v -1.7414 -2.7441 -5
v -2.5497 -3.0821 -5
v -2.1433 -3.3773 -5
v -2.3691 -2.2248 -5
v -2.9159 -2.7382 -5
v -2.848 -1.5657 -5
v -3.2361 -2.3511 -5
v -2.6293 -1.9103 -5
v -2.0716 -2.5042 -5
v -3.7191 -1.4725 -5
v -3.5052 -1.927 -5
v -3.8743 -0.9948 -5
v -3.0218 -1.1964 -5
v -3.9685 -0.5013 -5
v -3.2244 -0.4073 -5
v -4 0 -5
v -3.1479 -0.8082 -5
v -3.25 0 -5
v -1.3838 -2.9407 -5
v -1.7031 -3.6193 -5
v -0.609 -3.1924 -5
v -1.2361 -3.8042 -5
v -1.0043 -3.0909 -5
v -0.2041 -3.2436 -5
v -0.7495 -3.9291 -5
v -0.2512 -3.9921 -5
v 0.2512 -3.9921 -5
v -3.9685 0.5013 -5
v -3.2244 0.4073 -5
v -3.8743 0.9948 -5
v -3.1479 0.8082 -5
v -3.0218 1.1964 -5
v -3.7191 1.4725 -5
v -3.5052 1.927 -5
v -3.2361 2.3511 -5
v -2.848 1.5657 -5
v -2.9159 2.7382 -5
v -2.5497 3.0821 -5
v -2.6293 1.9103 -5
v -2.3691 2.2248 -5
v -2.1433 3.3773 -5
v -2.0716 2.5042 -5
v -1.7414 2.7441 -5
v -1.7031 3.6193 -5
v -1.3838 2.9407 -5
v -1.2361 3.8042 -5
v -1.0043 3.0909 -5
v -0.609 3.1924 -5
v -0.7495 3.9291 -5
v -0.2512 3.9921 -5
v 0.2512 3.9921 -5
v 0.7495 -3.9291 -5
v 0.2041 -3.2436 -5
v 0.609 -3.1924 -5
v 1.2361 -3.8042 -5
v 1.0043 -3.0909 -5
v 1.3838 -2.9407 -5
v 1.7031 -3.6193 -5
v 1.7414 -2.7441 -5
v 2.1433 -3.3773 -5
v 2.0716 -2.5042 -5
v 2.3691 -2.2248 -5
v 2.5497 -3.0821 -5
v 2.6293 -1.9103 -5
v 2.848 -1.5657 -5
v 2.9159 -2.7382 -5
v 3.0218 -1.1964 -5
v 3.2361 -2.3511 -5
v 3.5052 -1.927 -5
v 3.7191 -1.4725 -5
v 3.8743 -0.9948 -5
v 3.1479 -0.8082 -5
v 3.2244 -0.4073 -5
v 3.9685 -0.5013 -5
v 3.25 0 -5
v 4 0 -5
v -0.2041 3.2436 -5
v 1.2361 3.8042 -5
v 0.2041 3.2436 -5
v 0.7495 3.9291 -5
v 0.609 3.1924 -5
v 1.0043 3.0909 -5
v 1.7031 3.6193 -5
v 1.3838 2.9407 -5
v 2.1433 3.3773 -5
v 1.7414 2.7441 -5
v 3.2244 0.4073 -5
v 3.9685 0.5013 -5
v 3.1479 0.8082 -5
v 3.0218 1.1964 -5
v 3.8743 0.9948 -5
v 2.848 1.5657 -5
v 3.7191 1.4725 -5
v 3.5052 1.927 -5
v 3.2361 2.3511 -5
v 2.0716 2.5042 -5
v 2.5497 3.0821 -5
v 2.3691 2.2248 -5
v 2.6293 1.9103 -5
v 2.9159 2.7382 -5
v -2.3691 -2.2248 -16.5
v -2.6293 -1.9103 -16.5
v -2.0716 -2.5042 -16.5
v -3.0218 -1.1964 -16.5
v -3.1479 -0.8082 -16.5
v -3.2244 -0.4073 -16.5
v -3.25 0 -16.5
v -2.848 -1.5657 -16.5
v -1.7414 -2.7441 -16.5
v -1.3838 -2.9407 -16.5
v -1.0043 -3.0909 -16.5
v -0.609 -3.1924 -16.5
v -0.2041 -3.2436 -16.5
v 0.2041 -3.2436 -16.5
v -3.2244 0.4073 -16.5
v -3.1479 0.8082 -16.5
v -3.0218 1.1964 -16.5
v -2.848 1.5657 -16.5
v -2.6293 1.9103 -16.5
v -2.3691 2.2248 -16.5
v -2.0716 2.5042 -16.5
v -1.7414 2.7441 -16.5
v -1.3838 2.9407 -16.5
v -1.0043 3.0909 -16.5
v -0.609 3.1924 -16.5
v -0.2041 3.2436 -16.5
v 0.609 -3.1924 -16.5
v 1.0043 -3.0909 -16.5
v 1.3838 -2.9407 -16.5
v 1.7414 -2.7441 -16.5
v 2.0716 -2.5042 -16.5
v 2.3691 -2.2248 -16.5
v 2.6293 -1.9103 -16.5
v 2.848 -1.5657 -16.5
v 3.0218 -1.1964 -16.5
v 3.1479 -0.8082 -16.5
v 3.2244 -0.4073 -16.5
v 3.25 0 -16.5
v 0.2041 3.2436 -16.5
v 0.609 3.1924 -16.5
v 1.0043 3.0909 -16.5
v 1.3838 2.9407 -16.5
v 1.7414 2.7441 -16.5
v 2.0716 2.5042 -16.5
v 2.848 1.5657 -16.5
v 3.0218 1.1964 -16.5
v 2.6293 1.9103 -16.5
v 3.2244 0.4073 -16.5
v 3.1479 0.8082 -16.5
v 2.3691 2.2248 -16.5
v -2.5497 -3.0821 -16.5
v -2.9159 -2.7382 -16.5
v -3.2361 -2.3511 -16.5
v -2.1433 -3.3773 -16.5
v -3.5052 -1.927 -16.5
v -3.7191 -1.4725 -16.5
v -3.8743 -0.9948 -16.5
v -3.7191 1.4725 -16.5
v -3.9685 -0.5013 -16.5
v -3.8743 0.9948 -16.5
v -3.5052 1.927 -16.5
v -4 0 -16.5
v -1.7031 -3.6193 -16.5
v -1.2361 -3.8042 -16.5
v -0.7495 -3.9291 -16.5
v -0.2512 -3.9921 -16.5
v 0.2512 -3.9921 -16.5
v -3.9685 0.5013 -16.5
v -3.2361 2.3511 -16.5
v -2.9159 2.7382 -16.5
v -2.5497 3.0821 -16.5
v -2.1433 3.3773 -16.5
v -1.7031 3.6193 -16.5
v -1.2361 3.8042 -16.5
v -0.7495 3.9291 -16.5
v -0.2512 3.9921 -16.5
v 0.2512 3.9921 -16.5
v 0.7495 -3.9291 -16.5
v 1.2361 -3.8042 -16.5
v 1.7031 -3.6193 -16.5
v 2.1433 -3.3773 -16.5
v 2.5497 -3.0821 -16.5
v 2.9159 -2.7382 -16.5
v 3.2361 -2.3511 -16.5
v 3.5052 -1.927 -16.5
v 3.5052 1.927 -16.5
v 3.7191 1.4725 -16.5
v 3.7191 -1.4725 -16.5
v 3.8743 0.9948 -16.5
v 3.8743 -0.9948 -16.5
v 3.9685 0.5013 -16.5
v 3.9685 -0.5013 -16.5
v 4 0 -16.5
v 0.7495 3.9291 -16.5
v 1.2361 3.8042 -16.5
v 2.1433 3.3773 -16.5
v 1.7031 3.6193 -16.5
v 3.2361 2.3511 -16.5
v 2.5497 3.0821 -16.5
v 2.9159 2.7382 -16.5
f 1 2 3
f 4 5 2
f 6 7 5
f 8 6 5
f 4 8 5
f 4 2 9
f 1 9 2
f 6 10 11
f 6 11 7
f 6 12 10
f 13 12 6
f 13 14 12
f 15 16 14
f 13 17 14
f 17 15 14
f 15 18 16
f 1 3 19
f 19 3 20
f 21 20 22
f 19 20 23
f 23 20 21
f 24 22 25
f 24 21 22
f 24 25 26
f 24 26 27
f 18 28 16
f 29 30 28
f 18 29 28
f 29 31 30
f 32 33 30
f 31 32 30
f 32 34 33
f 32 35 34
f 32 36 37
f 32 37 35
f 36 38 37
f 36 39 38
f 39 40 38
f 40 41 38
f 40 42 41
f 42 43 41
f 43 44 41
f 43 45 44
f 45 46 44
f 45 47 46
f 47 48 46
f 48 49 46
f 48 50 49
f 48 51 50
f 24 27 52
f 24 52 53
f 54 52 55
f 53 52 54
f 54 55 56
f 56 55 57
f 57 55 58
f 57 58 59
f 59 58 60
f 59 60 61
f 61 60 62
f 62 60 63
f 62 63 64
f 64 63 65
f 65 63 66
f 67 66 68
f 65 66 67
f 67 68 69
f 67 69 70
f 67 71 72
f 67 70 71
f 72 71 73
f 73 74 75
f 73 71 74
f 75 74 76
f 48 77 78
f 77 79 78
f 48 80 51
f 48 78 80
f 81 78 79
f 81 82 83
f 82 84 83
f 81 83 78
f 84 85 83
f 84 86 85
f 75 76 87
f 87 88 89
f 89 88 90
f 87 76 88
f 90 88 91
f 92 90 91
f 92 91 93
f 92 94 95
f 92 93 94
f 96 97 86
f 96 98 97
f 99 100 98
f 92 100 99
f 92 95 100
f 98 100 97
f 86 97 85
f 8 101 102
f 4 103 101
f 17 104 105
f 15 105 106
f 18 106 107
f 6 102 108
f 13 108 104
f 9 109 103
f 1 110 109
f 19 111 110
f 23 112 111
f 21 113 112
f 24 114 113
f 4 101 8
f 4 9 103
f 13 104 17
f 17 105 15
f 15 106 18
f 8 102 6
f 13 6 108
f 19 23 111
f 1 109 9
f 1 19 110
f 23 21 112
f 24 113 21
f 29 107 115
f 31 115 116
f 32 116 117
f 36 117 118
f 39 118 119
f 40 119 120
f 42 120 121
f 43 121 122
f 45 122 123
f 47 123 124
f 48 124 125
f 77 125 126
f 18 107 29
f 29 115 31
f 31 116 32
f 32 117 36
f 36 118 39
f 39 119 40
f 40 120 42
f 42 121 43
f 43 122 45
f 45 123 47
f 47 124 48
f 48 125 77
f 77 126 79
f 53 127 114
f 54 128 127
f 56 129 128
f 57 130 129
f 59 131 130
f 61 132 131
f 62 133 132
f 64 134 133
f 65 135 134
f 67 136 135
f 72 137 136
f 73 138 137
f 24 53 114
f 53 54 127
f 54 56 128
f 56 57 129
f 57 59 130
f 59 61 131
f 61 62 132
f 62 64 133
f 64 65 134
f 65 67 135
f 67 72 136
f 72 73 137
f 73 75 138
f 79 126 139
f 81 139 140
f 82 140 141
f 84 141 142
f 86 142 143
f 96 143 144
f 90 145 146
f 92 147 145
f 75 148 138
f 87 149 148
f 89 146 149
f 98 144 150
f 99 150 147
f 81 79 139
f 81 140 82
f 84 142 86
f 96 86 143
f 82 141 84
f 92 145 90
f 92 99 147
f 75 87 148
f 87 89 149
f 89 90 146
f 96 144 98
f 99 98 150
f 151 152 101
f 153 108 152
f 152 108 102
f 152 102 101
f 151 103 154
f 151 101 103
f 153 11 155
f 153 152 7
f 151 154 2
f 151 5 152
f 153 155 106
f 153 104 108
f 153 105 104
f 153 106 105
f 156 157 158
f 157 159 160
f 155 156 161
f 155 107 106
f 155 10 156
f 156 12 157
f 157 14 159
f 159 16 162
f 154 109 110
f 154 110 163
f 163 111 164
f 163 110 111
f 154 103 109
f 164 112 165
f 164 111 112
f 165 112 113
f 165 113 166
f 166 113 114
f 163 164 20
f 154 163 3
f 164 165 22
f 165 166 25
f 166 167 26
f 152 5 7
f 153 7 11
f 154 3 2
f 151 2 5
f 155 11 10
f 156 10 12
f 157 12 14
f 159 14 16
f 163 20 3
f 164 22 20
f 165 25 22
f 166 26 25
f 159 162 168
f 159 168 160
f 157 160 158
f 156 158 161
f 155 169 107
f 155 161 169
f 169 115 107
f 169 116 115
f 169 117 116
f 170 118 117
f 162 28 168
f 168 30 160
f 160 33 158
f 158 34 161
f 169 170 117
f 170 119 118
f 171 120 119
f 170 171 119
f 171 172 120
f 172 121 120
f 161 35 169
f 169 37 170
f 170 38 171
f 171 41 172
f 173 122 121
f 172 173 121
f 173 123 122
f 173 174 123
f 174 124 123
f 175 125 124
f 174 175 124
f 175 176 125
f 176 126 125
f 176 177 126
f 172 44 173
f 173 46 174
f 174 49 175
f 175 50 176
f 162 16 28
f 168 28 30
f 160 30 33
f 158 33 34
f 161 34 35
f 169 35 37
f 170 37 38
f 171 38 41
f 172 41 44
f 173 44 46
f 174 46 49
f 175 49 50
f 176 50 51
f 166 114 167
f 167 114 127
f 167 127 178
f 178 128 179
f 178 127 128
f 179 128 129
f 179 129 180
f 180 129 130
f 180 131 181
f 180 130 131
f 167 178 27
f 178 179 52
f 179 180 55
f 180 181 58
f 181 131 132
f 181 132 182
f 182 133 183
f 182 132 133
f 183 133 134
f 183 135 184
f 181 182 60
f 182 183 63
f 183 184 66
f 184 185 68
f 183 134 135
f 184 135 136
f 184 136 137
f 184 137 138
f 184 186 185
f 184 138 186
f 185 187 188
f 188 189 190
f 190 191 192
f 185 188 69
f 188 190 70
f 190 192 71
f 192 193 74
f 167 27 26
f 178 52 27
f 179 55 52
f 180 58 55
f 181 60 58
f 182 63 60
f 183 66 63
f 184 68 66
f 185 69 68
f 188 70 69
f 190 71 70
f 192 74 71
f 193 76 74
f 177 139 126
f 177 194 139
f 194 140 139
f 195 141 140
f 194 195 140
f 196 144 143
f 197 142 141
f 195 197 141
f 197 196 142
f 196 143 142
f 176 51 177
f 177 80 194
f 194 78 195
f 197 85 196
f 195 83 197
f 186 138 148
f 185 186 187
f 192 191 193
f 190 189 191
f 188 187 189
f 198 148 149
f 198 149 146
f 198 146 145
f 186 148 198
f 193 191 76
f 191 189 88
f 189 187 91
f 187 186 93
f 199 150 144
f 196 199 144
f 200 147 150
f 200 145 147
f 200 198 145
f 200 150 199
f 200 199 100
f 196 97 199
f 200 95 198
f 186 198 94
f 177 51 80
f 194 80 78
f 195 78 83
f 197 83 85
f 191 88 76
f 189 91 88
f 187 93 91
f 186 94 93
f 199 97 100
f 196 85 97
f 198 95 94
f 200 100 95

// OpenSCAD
$fn = 50;

difference() {
	union() {
		translate(v = [0, 0, -16.5]) {
			cylinder(h = 16.5, r = 4.0);
		}
	}
	union() {
		translate(v = [0, 0, 0]) {
			rotate(a = [0, 0, 0]) {
				difference() {
					union() {
						translate(v = [0, 0, -5]) {
							linear_extrude(height = 5) {
								polygon(points = [[5.914249999999999, 0.0], [2.957125, 5.1218907443321156], [-2.9571249999999982, 5.1218907443321156], [-5.914249999999999, 7.242867331857232e-16], [-2.9571250000000022, -5.121890744332115], [2.9571249999999956, -5.121890744332118]]);
							}
						}
					}
					union();
				}
			}
		}
		#translate(v = [0, 0, -100.0]) {
			cylinder(h = 200, r = 3.25);
		}
	}
}
